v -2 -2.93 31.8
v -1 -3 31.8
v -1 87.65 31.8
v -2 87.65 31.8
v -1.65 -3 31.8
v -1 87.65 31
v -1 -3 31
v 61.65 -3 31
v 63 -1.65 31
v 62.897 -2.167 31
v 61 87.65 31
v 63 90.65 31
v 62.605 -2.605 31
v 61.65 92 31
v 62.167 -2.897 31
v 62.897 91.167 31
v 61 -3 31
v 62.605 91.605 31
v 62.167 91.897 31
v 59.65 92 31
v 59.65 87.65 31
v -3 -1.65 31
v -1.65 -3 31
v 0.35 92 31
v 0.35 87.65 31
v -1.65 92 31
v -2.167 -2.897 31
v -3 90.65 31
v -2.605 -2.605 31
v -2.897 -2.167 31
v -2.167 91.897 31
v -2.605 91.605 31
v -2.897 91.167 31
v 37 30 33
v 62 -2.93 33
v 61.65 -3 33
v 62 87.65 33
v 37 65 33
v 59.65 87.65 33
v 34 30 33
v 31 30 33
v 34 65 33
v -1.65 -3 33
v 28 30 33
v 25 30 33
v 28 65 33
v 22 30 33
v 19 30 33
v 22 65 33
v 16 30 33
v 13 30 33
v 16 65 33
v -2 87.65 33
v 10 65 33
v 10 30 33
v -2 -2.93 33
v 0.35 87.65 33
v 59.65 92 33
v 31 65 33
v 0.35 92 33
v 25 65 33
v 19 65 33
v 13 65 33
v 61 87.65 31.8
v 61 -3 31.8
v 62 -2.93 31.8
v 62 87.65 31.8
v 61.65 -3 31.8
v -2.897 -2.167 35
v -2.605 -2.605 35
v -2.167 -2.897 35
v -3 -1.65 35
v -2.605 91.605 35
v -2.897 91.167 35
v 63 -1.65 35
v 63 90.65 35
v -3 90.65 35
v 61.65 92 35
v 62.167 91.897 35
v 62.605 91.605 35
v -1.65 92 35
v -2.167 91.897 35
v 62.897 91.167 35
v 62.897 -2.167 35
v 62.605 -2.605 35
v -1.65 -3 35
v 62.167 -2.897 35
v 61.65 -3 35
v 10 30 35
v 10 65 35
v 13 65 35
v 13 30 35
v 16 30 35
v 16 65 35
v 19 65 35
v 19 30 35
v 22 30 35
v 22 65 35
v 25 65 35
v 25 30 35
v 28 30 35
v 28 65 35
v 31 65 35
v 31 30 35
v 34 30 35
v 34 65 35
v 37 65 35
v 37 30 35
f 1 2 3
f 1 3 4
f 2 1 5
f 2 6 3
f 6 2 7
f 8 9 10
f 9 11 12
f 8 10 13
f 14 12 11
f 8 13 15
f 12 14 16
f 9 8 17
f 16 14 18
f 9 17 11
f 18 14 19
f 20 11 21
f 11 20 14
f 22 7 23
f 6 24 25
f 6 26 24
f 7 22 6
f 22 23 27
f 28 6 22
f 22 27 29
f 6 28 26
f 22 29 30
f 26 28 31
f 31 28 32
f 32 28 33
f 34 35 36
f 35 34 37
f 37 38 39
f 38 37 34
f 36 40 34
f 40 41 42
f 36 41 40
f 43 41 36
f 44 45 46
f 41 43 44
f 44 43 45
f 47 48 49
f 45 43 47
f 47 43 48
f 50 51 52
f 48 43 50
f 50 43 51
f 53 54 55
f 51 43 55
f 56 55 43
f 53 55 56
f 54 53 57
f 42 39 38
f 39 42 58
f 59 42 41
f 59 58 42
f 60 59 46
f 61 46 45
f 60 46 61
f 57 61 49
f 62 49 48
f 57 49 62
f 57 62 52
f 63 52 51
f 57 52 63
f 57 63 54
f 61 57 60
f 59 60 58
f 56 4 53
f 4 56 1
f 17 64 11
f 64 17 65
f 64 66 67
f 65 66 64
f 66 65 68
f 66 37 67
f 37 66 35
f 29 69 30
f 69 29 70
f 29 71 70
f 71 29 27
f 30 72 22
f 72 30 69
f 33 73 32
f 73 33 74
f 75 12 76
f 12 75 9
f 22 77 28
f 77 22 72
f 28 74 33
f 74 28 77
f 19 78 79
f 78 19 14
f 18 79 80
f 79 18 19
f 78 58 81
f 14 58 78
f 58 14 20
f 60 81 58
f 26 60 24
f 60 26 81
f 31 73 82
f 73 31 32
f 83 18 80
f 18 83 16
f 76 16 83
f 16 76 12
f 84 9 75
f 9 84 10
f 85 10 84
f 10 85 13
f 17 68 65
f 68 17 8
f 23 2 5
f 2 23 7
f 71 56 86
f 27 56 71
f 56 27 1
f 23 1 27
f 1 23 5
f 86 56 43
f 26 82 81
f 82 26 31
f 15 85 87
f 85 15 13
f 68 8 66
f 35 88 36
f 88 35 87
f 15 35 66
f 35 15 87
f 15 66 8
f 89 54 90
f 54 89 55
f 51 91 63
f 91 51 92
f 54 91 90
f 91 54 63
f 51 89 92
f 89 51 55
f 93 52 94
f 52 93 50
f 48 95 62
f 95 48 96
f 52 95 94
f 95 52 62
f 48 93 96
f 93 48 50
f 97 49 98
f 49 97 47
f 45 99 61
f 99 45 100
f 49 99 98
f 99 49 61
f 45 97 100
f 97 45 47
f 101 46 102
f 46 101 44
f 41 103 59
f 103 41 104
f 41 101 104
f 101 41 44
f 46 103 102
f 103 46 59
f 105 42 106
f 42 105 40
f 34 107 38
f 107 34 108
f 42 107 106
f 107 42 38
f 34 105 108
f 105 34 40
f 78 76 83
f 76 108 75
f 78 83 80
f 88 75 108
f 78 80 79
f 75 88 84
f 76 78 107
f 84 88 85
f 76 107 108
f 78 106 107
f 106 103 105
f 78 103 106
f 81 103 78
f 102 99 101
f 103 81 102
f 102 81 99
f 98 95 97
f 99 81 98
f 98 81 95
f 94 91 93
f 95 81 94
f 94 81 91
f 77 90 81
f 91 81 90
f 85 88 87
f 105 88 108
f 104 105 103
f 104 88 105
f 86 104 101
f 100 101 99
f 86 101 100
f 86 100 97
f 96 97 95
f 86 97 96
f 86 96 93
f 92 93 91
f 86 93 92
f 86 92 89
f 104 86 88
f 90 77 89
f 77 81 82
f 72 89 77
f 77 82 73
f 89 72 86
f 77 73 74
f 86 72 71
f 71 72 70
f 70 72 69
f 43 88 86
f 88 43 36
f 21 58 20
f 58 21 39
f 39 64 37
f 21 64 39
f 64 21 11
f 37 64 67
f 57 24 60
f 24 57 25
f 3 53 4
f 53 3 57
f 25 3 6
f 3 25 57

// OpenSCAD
// file: const.scad
ptA = [1.35, 1.35];
ptB = [58.65, 1.35];
ptD = [1.35, 87.65];
ptC = [58.65, 87.65];
r1 = 1.35;

d1 = 3;  // 枠の厚み
h1 = 23;  // 枠の高さ

d2 = 2;  // 底面の厚み

h3 = 4;  // 蓋の高さ

d4_min = d1 / 3;
d4_mid = 2 * d1 / 3;

d4_dent = 1;
h4_protrusion = 1;
h4_dent = h1 - d4_dent - h4_protrusion;
// main file
include <const.scad>

union() {

	intersection() {  // 蓋凹凸
		translate([0, 0, 10]) {
			color([0, 0, 1]) union() {
				temp = 4;
				translate([ptA[0] - r1 -d4_min - temp, -5, h4_dent]) {
					cube( [temp, 100, d4_dent -0.2]);
				}
				translate([ptA[0] - r1 -d4_mid - temp, -5, h4_dent + h4_protrusion - 1]) {
					cube([temp, 100, h4_protrusion + 1]);
				}
				translate([ptB[0] + r1 + d4_min, -5, h4_dent]) {
					cube([temp, 100, d4_dent -0.2]);
				}
				translate([ptB[0] + r1 + d4_mid, -5, h4_dent + h4_protrusion - 1]) {
					cube([temp, 100, h4_protrusion + 1]);
				}
			}
		};
		translate([0, 0, 31]) {
			linear_extrude(height = 4) {  // 枠外側
				hull() {
					translate(v = [ptA[0] - d1, ptA[1] - d1]) {
						circle($fn = 16, r = r1);
					}
					translate(v = [ptB[0] + d1, ptB[1] - d1]) {
						circle($fn = 16, r = r1);
					}
					translate(v = [ptC[0] + d1, ptC[1] + d1]) {
						circle($fn = 16, r = r1);
					}
					translate(v = [ptD[0] - d1, ptD[1] + d1]) {
						circle($fn = 16, r = r1);
					}
				}
			};
		};
	};

	difference() {  // 蓋のスリット
		translate([0, 0, 33]) {  // 蓋上側
			linear_extrude(height = 2) {  // 枠外側
				hull() {
					translate(v = [ptA[0] - d1, ptA[1] - d1]) {
						circle($fn = 16, r = r1);
					}
					translate(v = [ptB[0] + d1, ptB[1] - d1]) {
						circle($fn = 16, r = r1);
					}
					translate(v = [ptC[0] + d1, ptC[1] + d1]) {
						circle($fn = 16, r = r1);
					}
					translate(v = [ptD[0] - d1, ptD[1] + d1]) {
						circle($fn = 16, r = r1);
					}
				}
			};
		};
		for (i = [0 : 6 : 27]) {  // 蓋のスリット
			translate([10 + i, 30, 30]) {
				cube([3, 35, 10]);
			};
		};
	};


	intersection() {  // ケースと蓋のつっかかり部分. 蓋側
		translate([0, 0, 9]) {
			union() {
				translate([ptC[0]+1, ptC[1], h4_dent]) {
					cube([5, 5, 4]);  // 底面
				};
				translate([ptD[0]-6, ptD[1], h4_dent]) {
					cube([5, 5, 4]);  // 蓋
				};
			}
		}
		translate([0, 0, 31]) {  // 蓋上側
			linear_extrude(height = 2) {  // 枠外側
				hull() {
					translate(v = [ptA[0] - d1, ptA[1] - d1]) {
						circle($fn = 16, r = r1);
					}
					translate(v = [ptB[0] + d1, ptB[1] - d1]) {
						circle($fn = 16, r = r1);
					}
					translate(v = [ptC[0] + d1, ptC[1] + d1]) {
						circle($fn = 16, r = r1);
					}
					translate(v = [ptD[0] - d1, ptD[1] + d1]) {
						circle($fn = 16, r = r1);
					}
				}
			};
		};
	}
}
